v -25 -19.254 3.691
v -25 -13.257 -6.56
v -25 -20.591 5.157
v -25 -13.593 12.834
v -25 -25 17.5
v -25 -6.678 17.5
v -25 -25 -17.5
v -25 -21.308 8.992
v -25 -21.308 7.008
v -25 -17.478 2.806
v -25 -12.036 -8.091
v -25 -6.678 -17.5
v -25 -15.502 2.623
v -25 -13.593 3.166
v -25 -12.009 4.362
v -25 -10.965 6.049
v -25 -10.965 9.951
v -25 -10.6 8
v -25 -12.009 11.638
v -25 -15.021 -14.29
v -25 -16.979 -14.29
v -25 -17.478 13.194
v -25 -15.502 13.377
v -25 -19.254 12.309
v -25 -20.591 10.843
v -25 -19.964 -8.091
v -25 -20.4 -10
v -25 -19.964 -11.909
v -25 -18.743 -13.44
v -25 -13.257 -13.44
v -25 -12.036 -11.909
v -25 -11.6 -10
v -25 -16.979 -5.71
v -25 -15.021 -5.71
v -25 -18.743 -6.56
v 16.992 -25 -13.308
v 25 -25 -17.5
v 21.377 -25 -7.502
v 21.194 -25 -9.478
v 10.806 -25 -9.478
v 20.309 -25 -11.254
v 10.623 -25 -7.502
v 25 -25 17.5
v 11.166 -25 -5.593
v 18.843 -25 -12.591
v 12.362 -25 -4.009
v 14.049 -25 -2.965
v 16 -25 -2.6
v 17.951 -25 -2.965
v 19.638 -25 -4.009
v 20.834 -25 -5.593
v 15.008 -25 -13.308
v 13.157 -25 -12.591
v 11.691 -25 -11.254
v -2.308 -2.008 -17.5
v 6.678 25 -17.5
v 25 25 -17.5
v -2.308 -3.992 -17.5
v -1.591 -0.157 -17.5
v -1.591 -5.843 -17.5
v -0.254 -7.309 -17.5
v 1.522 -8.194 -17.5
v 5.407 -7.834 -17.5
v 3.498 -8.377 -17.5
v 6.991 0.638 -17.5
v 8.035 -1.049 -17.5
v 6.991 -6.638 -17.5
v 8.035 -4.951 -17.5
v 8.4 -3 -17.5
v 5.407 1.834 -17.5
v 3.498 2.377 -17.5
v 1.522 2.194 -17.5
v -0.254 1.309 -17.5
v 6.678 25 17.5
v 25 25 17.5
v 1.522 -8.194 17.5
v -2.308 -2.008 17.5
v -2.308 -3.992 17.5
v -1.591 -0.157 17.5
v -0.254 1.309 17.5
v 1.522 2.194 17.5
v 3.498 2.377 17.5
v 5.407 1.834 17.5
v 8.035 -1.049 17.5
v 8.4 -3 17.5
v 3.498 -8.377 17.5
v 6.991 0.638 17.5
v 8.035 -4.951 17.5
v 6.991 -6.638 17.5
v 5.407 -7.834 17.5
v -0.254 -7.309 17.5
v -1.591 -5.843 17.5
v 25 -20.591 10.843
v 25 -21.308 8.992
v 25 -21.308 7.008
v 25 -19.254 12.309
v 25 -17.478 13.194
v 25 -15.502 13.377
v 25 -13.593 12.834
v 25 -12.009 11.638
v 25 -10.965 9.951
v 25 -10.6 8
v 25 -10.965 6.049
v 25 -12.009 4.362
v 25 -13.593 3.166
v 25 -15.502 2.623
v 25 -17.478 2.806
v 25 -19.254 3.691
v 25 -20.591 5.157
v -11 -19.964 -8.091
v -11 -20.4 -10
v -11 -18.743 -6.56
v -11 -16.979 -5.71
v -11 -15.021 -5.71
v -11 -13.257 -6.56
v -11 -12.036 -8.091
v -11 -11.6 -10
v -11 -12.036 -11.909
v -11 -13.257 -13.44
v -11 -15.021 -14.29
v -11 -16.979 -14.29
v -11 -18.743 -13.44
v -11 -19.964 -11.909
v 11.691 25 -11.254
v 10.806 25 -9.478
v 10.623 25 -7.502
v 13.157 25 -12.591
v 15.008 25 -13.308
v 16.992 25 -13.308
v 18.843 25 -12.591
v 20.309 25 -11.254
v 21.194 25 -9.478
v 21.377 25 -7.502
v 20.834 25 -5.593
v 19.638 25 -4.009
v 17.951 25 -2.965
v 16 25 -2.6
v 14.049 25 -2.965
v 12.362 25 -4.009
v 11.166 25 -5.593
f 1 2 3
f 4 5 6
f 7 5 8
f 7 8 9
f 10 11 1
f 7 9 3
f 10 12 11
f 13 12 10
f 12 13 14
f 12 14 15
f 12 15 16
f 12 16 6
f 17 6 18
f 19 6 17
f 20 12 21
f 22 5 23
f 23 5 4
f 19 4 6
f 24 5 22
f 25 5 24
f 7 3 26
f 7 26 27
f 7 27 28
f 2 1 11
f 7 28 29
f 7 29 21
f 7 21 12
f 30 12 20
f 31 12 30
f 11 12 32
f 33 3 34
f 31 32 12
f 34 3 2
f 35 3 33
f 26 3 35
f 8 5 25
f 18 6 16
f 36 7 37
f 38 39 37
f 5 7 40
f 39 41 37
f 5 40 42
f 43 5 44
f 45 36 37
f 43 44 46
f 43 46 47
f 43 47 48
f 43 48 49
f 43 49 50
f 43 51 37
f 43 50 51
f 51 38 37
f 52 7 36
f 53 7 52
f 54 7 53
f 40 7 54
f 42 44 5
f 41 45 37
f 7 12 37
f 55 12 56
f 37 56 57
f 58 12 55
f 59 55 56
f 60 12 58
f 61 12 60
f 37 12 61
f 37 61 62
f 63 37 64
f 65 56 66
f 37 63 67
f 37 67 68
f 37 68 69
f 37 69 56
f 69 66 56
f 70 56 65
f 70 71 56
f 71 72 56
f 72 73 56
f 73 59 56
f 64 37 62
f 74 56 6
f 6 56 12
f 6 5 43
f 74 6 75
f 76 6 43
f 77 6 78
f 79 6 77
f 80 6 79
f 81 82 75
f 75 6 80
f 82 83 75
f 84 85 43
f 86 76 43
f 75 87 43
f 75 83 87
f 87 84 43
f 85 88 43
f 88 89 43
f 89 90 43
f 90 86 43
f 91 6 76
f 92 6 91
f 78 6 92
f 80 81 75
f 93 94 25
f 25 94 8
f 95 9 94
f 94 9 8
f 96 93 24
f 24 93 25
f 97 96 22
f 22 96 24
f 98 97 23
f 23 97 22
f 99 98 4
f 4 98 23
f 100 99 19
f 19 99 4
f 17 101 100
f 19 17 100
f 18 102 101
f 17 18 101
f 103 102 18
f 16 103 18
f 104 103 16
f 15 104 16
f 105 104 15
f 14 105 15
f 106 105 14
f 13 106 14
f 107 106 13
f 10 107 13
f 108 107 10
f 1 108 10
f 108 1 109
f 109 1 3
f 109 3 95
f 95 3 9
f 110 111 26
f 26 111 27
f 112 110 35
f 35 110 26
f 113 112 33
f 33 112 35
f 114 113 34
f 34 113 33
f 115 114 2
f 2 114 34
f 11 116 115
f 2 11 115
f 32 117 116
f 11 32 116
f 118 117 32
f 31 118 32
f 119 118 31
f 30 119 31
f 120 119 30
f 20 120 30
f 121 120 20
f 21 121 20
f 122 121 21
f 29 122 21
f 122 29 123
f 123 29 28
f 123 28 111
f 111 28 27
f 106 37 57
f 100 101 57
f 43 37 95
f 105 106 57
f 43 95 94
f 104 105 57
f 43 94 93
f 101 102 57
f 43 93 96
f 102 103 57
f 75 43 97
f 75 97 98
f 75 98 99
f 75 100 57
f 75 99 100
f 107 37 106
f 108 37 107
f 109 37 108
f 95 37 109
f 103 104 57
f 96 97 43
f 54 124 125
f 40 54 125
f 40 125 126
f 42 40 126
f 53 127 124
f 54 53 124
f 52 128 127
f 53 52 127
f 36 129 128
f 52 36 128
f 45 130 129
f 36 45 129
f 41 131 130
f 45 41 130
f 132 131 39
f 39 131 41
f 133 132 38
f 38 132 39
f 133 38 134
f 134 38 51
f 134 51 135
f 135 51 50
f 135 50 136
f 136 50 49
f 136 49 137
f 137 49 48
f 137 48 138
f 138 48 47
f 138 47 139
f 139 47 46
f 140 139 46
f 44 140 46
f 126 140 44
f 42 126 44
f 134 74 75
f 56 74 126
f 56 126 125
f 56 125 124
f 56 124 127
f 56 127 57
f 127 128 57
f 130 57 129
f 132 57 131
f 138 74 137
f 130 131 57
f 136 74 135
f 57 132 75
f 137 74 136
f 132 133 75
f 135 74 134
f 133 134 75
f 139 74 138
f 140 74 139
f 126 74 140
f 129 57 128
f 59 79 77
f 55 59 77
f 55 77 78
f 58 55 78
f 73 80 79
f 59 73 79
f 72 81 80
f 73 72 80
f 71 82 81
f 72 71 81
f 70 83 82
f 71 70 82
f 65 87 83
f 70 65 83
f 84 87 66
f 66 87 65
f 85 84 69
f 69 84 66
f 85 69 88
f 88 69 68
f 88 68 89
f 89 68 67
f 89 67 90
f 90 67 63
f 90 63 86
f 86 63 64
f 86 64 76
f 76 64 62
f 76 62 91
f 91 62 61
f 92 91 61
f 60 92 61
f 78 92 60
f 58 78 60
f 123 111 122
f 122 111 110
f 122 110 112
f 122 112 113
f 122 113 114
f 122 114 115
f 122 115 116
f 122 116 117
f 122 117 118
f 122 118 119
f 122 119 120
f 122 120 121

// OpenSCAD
module base()
{

difference(){
//main box
translate(v=[0,0,0]) cube(size = [50,50,35], center = true);


//8mm rod
translate(v=[-21,-16,-10]) rotate(a=[0,-90,0]) rotate(a=[0,0,90]) cylinder(h=20, r=4.4, center = true);

//3/8 all thread hole
translate(v=[-12,-16,8]) rotate(a=[0,-90,0]) rotate(a=[0,0,90]) cylinder(h=80, r=5.4, center = true);

//3/8 all thread hole
translate(v=[16,0,-8]) rotate(a=[0,-90,0]) rotate(a=[90,0,0]) cylinder(h=80, r=5.4, center = true);


// vertical 3/8 all thread hole
translate(v=[3,-3,0]) rotate(a=[0,0,0]) rotate(a=[0,0,0]) cylinder(h=80, r=5.4, center = true);
//cutout of all thread holes
//translate(v=[16,-16,0]) cube(size = [32,32,41], center = true);

translate(v=[-18,18,0]) rotate(a=[0,0,45]) cube(size = [45,25,41], center = true);
}

}


module finished()
{

base();	

}

finished();
